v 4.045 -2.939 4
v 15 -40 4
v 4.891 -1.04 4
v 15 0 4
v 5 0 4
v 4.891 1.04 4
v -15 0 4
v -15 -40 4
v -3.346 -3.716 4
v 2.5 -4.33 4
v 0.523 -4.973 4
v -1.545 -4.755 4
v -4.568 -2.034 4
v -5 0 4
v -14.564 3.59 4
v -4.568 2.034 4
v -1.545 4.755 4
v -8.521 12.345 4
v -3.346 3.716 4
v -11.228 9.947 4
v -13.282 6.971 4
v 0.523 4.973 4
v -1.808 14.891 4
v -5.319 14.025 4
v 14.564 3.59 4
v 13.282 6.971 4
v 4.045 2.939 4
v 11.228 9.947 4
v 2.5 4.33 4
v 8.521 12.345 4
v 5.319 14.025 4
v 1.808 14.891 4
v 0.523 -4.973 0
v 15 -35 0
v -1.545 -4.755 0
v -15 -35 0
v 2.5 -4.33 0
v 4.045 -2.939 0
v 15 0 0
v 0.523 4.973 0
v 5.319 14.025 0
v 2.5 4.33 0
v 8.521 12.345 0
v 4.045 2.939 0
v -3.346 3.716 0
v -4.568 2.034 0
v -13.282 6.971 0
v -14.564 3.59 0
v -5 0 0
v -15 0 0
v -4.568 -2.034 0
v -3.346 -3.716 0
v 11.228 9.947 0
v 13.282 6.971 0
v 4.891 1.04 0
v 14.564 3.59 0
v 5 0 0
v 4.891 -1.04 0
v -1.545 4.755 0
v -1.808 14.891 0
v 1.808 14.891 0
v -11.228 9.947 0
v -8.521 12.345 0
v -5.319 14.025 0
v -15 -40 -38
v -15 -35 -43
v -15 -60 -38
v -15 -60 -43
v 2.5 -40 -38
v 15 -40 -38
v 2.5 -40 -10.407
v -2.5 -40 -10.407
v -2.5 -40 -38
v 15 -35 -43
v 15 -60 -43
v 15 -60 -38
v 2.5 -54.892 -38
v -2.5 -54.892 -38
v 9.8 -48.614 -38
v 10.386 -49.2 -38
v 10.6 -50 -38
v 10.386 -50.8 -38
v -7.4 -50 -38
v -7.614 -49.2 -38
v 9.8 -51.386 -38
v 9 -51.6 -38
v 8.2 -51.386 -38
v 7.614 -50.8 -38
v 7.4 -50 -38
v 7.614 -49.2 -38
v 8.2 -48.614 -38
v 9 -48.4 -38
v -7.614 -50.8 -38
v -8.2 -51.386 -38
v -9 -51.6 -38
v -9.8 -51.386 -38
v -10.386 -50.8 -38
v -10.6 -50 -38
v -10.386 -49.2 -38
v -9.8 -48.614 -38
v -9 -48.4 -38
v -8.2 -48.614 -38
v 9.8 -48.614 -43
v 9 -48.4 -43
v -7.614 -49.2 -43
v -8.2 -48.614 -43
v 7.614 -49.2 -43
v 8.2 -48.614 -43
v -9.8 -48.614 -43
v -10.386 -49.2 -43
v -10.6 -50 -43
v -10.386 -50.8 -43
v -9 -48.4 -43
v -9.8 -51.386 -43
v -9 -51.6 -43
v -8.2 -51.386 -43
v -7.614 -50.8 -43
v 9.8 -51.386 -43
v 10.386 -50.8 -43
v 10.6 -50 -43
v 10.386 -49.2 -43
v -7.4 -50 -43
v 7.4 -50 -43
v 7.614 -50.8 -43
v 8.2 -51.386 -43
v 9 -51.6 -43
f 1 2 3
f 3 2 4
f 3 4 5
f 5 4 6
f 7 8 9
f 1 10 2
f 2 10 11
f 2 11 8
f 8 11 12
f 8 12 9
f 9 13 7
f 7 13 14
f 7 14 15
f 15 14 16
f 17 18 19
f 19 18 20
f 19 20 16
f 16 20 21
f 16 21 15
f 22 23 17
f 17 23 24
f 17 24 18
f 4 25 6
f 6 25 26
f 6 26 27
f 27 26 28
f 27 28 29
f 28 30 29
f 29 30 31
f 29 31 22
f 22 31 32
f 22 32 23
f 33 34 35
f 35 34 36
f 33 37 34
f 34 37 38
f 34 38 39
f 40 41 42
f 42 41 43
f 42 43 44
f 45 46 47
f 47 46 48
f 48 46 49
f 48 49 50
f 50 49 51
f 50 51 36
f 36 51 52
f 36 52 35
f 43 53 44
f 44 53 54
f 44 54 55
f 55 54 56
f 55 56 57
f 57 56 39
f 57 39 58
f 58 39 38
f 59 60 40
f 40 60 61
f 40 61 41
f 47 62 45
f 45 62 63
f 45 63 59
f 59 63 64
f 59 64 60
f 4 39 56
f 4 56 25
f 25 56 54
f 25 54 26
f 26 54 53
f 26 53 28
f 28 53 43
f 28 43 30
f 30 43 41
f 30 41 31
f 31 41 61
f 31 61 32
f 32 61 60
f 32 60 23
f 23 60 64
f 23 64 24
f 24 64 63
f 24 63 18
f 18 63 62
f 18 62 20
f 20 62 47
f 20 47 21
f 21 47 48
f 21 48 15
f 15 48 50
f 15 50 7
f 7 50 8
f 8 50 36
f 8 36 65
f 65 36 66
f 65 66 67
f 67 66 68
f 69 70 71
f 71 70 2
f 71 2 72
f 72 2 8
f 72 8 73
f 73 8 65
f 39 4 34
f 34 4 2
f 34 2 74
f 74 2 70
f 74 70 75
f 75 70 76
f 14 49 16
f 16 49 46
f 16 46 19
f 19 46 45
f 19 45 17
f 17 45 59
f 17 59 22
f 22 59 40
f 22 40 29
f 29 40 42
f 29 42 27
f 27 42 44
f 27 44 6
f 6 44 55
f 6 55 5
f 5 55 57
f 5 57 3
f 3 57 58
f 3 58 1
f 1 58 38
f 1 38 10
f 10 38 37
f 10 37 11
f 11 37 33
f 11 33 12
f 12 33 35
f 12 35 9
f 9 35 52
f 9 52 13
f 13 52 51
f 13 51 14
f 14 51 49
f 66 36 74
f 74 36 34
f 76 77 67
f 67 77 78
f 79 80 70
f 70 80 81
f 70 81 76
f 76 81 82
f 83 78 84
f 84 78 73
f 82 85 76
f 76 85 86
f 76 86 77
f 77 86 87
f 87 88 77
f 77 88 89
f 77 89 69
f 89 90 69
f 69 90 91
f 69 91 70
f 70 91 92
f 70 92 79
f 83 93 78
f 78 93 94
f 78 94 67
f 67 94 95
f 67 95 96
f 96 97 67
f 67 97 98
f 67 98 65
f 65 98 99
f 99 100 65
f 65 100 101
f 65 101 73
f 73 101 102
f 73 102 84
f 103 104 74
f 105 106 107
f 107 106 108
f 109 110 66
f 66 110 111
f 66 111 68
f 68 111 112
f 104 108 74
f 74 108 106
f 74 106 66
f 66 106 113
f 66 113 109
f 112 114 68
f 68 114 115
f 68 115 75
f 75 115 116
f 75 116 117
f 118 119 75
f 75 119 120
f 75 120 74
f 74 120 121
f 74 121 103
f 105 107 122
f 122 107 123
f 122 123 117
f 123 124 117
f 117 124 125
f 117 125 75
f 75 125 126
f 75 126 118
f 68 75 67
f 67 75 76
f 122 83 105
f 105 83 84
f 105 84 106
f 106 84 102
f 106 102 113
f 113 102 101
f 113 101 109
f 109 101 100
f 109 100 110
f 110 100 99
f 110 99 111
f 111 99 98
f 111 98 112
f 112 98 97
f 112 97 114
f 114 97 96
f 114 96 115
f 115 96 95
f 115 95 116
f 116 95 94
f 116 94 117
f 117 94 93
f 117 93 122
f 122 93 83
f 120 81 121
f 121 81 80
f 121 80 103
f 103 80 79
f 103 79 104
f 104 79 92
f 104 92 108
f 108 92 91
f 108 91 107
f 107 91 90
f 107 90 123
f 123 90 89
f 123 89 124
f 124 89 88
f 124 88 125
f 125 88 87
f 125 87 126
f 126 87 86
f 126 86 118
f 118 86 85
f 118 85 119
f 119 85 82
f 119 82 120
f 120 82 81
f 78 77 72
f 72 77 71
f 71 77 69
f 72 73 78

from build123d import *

# Parameters (mm, degrees)
SKETCH1_R           = 5
BOSS_EXTRUDE1_DEPTH = 4
SKETCH2_W           = 30
SKETCH2_H           = 38
BOSS_EXTRUDE2_DEPTH = 5
SKETCH4_W           = 30
SKETCH4_H           = 25
SKETCH4_R           = 1.6
BOSS_EXTRUDE3_DEPTH = 5
RIB1_REACH          = 77.326
SKETCH5_WALL_W      = 184.007294544
SKETCH5_WALL_H      = 5


with BuildPart() as part:
    # Sketch1 → Boss-Extrude1 (new body)
    with BuildSketch(Plane.XY):
        with BuildLine():
            Line((15, 0), (15, -40))
            Line((15, -40), (-15, -40))
            Line((-15, -40), (-15, 0))
            ThreePointArc((-15, 0), (0, 15), (15, 0))
        make_face()
        Circle(SKETCH1_R, mode=Mode.SUBTRACT)
    extrude(amount=BOSS_EXTRUDE1_DEPTH)

    # Sketch2 → Boss-Extrude2 (add)
    with BuildSketch(Plane.XZ.offset(40)):
        with Locations((0, -19)):
            Rectangle(SKETCH2_W, SKETCH2_H)
    extrude(amount=-BOSS_EXTRUDE2_DEPTH)

    # Sketch4 → Boss-Extrude3 (add)
    with BuildSketch(Plane(origin=(0, 0, -38), x_dir=(-1, 0, 0), z_dir=(0, 0, -1))):
        with Locations((0, -47.5)):
            Rectangle(SKETCH4_W, SKETCH4_H)
        with Locations((9, -50)):
            Circle(SKETCH4_R, mode=Mode.SUBTRACT)
        with Locations((-9, -50)):
            Circle(SKETCH4_R, mode=Mode.SUBTRACT)
    extrude(amount=BOSS_EXTRUDE3_DEPTH)

    # Sketch5 wall → Rib1 (add, up to next)
    with BuildSketch(Plane(origin=(0, -47.446002706, -24.203370922), x_dir=(0, 0.474942623165, 0.880016763875), z_dir=(0, -0.880016763875, 0.474942623165)), mode=Mode.PRIVATE) as rib1_sk1:
        Rectangle(SKETCH5_WALL_W, SKETCH5_WALL_H)
    rib1_tool1 = extrude(rib1_sk1.sketch, amount=-RIB1_REACH, mode=Mode.PRIVATE) - part.part
    add(rib1_tool1.solids().sort_by_distance((0, -47.446002706, -24.203370922))[0])


solid = part.part
